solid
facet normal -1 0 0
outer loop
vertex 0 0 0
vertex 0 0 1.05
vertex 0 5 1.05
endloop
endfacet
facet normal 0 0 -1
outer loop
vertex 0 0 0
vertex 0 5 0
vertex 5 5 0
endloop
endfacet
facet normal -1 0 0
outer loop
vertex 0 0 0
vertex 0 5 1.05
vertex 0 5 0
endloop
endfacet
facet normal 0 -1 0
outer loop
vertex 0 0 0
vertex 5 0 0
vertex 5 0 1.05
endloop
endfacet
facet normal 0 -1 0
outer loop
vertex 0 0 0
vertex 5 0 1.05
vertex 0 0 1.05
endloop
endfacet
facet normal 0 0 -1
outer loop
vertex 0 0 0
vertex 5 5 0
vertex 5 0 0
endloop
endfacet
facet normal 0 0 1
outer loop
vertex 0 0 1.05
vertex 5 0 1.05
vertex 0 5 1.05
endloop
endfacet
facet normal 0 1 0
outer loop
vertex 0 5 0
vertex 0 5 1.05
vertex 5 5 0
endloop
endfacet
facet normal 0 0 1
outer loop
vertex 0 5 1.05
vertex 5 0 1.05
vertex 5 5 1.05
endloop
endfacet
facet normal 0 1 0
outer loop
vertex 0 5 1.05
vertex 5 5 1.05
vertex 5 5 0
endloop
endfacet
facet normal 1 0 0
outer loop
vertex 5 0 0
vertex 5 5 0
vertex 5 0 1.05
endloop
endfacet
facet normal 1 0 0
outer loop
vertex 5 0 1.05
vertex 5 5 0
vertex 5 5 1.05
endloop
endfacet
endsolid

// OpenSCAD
/* Warning, this is a very basic generator with a lot of approximation 
input data : [TQFN, 9DW, 5x5x1.05mm, 32, , A, C04-00681A]
generated by com.zoubworld.electronics.cad.model3d.Basic
Date : Sun Feb 15 10:50:49 CET 2026
*/

//body
color("black")
translate([0,0,0])
cube([5.0,5.0,1.05], center=false);
